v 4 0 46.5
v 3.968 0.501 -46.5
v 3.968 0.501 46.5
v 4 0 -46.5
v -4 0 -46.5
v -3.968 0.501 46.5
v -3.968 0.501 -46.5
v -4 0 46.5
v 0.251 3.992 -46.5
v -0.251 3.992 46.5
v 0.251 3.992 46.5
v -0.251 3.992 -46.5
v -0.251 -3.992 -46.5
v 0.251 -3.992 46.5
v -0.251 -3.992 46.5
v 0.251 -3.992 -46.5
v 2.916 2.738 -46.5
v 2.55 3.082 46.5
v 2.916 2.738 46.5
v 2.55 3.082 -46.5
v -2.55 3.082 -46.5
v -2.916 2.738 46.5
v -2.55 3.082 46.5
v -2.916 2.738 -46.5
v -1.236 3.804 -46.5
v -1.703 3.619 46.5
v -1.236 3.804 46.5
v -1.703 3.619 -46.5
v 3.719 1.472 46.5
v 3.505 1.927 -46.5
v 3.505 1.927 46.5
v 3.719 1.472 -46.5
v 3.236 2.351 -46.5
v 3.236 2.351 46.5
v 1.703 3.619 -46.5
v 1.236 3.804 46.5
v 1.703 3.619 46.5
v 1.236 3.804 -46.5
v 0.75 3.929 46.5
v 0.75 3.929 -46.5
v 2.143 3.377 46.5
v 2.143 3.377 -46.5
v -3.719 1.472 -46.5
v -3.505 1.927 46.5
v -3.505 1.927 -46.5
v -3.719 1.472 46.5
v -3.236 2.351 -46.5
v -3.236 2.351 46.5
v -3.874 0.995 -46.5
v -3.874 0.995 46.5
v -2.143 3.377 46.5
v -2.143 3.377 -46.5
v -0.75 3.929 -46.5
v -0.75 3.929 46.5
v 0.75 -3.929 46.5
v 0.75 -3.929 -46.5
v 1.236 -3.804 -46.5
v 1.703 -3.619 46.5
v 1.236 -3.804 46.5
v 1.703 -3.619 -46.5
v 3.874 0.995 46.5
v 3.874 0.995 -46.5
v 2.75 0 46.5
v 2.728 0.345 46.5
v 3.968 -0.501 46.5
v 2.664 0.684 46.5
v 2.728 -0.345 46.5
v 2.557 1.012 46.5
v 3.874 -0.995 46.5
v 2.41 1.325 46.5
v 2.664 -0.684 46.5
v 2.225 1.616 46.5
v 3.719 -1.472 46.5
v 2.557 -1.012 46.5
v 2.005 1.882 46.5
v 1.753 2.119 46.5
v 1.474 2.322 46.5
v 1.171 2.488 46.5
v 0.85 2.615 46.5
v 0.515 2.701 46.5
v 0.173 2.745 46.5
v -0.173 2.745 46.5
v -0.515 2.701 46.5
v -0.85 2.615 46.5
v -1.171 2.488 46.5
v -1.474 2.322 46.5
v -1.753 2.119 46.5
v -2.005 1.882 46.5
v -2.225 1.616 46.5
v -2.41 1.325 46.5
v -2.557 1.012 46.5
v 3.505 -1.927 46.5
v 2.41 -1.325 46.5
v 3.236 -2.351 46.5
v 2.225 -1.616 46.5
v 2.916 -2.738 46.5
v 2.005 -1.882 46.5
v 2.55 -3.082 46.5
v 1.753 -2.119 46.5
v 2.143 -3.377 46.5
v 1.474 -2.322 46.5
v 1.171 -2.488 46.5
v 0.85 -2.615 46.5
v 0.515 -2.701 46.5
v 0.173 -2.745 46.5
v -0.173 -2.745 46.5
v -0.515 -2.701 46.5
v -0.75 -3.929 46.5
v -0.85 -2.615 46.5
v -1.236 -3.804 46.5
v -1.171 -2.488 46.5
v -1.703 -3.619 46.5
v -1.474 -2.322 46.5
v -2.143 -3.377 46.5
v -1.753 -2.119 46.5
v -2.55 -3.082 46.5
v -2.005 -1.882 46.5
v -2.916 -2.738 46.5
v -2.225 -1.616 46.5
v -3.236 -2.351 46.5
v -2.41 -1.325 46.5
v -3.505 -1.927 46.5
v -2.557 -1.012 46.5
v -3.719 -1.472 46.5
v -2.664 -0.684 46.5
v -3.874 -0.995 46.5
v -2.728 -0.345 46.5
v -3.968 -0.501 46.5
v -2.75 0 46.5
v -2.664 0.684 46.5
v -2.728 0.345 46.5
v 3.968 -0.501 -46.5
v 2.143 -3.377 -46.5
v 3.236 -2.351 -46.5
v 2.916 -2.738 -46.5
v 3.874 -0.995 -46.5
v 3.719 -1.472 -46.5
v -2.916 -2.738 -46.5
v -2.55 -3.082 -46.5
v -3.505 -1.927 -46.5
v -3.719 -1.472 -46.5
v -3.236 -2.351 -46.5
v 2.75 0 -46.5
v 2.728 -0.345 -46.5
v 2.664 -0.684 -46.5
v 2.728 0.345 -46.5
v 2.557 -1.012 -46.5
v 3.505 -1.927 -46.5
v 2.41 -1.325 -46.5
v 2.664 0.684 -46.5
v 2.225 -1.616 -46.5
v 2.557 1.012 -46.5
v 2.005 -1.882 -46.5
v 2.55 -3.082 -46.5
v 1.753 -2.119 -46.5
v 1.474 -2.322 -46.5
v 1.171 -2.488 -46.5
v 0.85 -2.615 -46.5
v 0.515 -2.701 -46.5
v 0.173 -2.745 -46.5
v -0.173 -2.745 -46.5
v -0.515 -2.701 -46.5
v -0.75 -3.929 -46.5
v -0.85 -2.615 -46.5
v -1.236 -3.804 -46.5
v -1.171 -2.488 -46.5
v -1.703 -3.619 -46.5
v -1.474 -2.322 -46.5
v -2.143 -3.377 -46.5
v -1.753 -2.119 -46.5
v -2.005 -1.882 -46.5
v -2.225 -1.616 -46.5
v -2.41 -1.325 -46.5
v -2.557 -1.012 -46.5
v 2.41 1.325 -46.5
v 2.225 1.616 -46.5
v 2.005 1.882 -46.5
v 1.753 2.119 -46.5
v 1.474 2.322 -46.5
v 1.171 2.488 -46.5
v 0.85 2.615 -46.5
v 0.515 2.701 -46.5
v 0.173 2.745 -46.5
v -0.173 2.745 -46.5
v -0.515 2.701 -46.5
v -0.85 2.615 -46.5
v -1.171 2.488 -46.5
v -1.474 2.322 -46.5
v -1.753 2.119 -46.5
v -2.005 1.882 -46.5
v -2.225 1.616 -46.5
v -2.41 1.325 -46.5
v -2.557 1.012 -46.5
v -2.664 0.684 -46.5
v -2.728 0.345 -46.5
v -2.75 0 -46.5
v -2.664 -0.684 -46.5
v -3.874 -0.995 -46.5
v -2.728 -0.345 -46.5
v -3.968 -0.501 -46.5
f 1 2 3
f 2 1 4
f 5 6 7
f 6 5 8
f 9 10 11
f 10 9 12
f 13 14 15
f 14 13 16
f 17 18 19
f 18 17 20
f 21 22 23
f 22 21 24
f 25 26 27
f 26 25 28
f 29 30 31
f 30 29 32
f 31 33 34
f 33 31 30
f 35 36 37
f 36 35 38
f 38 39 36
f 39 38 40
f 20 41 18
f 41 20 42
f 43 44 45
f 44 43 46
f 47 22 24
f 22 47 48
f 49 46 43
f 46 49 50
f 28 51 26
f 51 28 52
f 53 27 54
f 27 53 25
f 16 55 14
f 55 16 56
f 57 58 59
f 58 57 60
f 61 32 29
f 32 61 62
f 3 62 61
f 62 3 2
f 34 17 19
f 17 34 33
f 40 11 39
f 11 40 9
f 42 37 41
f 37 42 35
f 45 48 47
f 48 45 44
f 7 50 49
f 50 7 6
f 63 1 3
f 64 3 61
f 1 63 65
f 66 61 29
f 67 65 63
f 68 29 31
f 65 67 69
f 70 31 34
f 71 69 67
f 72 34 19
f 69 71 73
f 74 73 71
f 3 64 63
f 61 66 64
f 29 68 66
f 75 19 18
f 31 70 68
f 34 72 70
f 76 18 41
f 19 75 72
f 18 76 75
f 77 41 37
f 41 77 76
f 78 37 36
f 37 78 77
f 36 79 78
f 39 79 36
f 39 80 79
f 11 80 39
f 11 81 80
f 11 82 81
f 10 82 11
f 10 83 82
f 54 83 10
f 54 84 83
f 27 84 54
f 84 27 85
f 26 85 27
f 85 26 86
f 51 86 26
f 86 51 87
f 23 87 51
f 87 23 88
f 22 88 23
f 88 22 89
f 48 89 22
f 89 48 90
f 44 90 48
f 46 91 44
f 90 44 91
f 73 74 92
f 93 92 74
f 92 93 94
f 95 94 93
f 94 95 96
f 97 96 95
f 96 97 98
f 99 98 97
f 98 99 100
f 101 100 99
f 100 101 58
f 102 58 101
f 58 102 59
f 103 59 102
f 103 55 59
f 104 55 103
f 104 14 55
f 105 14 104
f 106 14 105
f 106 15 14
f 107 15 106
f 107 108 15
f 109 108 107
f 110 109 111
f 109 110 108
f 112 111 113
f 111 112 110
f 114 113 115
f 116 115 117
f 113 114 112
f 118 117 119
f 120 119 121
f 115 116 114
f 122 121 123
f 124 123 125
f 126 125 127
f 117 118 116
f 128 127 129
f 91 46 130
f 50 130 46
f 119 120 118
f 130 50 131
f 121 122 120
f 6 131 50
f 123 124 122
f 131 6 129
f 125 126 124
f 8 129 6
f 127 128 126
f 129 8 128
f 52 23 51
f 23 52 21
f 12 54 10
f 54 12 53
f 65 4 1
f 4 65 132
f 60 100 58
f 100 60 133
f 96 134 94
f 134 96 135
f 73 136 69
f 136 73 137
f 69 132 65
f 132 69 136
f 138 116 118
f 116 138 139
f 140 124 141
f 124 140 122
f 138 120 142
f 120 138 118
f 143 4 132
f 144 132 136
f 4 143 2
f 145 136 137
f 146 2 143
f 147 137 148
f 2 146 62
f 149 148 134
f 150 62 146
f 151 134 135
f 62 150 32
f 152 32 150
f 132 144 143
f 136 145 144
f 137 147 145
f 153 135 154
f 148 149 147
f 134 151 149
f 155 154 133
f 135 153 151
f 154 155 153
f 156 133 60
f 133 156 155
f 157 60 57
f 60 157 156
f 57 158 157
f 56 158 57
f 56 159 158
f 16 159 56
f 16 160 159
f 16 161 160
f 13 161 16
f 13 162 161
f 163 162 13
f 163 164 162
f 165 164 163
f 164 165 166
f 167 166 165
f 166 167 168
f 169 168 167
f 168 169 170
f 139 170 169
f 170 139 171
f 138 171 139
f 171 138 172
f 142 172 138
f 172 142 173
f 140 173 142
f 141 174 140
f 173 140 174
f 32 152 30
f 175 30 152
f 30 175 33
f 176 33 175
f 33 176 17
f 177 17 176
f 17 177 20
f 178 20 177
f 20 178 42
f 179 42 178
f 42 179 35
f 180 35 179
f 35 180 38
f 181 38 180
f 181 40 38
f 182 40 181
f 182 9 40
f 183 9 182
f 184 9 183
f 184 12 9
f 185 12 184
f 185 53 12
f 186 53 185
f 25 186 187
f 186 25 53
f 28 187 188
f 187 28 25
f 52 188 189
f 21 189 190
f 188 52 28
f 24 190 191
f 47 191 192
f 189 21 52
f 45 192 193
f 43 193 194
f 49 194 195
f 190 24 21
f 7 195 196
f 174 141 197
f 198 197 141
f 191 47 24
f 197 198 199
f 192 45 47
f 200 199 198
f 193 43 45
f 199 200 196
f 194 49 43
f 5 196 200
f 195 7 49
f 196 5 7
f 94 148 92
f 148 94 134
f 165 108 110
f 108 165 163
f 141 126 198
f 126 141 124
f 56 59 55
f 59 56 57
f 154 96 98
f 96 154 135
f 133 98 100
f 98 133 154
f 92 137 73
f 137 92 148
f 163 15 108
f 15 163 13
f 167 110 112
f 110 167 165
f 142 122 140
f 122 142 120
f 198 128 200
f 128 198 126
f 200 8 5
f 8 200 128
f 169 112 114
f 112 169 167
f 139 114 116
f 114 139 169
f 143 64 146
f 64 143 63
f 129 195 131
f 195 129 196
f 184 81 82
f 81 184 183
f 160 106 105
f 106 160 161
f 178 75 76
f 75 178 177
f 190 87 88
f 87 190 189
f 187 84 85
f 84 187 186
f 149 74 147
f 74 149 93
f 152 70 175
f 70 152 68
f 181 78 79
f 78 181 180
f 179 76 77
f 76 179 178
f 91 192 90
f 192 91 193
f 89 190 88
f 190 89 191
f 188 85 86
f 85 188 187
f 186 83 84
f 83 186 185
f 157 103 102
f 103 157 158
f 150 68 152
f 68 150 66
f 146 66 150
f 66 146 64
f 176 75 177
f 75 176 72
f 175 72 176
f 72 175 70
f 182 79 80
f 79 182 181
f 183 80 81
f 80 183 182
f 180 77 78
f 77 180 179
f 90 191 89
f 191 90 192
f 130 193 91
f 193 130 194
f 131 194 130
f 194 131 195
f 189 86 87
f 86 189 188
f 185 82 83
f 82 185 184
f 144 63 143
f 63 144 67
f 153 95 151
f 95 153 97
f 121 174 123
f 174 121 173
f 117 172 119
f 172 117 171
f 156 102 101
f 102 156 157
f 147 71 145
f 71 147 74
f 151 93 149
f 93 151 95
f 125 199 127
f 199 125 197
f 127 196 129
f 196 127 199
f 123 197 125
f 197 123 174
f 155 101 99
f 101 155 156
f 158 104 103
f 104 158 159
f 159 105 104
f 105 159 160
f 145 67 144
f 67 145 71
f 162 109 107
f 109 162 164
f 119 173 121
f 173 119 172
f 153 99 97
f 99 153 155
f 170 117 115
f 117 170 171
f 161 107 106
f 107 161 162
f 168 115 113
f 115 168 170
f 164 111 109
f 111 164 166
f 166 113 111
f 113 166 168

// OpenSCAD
$fn = 50;


difference() {
	union() {
		translate(v = [0, 0, -46.5000000000]) {
			cylinder(h = 93, r = 4.0000000000);
		}
	}
	union() {
		translate(v = [0, 0, -100.0000000000]) {
			cylinder(h = 200, r = 2.7500000000);
		}
	}
}
